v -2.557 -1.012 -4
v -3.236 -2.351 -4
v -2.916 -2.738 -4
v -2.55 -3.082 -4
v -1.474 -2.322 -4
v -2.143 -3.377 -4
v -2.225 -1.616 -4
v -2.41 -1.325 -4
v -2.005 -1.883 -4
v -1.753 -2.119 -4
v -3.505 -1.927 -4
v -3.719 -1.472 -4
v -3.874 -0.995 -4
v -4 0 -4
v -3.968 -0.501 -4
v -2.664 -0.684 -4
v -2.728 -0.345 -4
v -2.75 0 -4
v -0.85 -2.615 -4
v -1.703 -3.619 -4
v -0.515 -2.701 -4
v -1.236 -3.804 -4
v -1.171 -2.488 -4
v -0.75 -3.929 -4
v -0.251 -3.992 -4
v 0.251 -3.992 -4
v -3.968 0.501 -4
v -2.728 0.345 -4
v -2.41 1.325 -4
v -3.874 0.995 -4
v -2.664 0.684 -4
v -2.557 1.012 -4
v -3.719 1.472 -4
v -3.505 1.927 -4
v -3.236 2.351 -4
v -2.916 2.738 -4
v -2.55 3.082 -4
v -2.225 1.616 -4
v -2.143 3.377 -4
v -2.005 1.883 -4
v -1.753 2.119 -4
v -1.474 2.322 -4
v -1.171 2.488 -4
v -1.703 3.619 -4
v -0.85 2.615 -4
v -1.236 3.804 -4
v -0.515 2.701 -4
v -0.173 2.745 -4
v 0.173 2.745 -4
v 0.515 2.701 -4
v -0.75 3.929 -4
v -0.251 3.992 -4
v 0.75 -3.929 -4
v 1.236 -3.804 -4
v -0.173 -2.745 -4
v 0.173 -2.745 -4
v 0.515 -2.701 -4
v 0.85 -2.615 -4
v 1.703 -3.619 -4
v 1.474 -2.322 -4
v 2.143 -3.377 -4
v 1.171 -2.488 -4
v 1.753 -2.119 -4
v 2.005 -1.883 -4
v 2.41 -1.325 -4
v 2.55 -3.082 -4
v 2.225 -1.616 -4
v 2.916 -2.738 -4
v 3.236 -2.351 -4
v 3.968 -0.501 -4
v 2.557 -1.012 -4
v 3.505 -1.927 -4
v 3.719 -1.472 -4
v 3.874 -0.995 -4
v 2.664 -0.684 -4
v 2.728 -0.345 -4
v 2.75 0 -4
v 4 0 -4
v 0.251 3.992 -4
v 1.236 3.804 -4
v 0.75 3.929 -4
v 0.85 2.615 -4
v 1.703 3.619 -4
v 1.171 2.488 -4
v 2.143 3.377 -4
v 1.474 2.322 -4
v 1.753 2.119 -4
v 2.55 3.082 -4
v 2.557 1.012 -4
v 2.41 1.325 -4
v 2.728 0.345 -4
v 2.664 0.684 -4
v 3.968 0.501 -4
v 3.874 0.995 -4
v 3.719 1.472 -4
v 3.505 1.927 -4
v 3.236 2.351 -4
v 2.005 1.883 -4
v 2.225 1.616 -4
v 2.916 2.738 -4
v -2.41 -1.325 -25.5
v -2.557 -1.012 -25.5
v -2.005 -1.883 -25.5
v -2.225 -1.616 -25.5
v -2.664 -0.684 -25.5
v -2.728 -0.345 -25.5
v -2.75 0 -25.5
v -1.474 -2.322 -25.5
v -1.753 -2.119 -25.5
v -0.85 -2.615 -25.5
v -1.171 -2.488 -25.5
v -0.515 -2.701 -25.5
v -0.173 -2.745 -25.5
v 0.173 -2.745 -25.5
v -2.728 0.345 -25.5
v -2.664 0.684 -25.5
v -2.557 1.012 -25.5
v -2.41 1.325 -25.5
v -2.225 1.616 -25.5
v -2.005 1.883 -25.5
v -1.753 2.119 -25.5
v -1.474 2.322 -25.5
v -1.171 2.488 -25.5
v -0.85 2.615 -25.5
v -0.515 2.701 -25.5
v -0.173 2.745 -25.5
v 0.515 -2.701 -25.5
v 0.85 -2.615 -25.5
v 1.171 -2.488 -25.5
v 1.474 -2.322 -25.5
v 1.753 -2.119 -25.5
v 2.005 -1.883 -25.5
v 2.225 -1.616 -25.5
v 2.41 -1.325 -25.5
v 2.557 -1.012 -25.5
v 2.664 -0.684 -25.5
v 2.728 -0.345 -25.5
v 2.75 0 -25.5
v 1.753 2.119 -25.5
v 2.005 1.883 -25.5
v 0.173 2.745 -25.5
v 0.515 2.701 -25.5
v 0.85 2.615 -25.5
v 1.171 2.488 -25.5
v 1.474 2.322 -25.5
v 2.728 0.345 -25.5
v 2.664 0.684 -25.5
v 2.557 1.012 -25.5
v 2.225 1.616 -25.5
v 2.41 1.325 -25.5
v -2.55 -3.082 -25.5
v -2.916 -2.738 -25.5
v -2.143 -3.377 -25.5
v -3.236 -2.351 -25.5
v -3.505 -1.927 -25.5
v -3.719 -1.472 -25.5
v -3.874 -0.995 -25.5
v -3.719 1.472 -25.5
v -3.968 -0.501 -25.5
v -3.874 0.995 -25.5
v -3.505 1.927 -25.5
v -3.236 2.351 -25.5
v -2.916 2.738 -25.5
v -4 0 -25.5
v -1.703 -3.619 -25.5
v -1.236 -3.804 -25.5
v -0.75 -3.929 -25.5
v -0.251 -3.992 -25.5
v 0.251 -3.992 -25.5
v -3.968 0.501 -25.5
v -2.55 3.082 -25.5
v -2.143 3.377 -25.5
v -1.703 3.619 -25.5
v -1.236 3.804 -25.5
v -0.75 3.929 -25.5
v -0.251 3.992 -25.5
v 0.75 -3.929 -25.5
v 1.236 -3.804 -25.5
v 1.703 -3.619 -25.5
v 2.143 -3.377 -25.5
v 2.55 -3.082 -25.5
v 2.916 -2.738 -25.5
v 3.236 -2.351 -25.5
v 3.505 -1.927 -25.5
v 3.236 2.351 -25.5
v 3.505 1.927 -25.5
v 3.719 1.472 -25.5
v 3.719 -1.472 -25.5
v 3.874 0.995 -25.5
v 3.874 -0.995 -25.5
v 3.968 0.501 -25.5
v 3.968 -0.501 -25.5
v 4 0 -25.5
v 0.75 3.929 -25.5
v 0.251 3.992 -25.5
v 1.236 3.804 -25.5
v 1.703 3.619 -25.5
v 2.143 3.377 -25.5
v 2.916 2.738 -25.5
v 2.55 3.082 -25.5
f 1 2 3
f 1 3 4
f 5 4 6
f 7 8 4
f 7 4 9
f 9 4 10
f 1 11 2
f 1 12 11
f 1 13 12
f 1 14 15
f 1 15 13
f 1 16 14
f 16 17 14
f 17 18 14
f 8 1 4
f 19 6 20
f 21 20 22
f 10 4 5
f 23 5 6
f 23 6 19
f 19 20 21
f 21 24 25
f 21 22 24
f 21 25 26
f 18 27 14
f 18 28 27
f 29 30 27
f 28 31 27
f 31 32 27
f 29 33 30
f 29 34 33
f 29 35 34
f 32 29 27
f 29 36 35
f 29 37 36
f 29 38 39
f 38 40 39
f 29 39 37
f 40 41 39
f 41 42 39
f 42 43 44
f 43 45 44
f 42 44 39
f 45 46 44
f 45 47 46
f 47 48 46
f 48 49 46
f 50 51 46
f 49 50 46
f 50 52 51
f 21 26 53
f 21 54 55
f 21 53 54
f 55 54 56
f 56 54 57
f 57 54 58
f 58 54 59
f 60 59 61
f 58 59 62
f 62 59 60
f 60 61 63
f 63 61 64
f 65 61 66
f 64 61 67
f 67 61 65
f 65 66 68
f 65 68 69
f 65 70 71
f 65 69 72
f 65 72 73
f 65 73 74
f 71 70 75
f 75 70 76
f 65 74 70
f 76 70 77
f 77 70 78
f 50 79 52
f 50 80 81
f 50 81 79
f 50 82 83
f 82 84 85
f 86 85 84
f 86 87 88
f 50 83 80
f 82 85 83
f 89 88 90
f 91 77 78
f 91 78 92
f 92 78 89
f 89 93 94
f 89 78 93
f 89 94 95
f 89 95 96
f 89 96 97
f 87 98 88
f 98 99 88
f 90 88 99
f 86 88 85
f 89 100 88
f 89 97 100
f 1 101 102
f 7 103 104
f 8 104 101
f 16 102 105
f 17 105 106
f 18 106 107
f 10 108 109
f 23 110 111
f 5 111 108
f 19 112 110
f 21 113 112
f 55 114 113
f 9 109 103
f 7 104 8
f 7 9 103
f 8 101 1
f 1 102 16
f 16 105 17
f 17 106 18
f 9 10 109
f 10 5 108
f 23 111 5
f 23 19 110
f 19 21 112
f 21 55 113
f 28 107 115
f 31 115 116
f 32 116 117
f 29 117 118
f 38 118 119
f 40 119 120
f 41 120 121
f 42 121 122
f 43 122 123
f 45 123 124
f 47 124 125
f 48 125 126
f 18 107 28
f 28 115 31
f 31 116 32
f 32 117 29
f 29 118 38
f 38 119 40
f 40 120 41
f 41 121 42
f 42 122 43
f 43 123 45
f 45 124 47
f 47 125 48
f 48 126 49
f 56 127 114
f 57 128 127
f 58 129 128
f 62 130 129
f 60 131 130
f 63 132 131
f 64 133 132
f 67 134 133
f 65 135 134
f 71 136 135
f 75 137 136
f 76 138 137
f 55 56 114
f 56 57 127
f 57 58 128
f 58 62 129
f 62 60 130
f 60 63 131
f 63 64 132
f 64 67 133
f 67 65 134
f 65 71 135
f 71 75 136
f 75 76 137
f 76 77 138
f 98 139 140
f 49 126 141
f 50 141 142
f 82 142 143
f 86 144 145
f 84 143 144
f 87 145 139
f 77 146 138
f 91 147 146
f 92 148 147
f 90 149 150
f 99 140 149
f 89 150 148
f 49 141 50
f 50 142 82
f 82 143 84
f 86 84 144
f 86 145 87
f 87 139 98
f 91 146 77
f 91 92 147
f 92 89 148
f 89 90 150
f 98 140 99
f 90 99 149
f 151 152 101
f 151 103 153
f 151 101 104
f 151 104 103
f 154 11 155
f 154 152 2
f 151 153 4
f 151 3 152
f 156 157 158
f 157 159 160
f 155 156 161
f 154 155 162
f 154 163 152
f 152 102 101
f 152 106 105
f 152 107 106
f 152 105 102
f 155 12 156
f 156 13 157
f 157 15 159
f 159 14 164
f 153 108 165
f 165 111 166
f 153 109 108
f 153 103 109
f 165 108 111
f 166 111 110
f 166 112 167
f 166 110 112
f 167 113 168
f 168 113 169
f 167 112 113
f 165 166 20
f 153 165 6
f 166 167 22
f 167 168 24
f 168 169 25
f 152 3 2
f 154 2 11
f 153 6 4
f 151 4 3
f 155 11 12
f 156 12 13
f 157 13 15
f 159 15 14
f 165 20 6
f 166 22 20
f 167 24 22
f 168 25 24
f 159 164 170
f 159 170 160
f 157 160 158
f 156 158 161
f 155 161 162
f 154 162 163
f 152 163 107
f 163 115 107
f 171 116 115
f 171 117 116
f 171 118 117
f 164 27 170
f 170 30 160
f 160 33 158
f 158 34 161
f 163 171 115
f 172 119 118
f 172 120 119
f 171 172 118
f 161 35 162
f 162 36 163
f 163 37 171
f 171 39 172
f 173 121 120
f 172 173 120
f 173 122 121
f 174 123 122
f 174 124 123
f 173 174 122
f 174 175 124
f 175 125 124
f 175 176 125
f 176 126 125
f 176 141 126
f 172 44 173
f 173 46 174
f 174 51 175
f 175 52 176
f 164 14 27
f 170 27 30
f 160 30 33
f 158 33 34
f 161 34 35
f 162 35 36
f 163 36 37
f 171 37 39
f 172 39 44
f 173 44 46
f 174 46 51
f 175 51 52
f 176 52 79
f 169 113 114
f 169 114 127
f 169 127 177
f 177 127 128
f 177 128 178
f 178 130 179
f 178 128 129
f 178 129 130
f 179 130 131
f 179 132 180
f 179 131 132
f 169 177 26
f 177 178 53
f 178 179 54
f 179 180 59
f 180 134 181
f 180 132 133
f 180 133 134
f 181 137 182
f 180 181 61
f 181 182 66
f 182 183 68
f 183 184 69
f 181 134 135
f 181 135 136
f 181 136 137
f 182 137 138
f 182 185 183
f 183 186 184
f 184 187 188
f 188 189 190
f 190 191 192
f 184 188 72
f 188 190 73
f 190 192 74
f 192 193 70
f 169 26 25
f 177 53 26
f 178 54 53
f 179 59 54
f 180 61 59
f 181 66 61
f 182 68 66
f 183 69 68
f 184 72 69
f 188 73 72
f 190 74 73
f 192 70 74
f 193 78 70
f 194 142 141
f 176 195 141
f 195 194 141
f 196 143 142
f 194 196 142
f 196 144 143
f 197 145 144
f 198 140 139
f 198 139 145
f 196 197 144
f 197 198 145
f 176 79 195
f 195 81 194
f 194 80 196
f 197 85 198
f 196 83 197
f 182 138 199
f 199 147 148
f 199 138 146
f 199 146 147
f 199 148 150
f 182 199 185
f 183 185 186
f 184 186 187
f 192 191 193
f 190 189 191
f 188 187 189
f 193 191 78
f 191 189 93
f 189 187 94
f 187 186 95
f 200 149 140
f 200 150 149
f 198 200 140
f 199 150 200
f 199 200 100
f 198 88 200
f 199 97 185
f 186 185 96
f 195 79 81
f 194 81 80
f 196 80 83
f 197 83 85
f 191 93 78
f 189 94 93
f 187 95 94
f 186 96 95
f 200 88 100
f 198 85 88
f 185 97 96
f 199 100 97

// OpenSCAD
$fn = 50;

difference() {
	union() {
		translate(v = [0, 0, -25.5]) {
			cylinder(h = 28.5, r = 4.0);
		}
	}
	union() {
		translate(v = [0, 0, 0]) {
			rotate(a = [0, 0, 0]) {
				difference() {
					union() {
						translate(v = [0, 0, -4]) {
							linear_extrude(height = 4) {
								polygon(points = [[4.8468, 0.0], [2.4234000000000004, 4.197451927062417], [-2.423399999999999, 4.197451927062417], [-4.8468, 5.935618106107392e-16], [-2.423400000000002, -4.197451927062416], [2.423399999999997, -4.197451927062419]]);
							}
						}
					}
					union();
				}
			}
		}
		#cylinder(h = 3, r = 6.25);
		#translate(v = [0, 0, -100.0]) {
			cylinder(h = 200, r = 2.75);
		}
	}
}
